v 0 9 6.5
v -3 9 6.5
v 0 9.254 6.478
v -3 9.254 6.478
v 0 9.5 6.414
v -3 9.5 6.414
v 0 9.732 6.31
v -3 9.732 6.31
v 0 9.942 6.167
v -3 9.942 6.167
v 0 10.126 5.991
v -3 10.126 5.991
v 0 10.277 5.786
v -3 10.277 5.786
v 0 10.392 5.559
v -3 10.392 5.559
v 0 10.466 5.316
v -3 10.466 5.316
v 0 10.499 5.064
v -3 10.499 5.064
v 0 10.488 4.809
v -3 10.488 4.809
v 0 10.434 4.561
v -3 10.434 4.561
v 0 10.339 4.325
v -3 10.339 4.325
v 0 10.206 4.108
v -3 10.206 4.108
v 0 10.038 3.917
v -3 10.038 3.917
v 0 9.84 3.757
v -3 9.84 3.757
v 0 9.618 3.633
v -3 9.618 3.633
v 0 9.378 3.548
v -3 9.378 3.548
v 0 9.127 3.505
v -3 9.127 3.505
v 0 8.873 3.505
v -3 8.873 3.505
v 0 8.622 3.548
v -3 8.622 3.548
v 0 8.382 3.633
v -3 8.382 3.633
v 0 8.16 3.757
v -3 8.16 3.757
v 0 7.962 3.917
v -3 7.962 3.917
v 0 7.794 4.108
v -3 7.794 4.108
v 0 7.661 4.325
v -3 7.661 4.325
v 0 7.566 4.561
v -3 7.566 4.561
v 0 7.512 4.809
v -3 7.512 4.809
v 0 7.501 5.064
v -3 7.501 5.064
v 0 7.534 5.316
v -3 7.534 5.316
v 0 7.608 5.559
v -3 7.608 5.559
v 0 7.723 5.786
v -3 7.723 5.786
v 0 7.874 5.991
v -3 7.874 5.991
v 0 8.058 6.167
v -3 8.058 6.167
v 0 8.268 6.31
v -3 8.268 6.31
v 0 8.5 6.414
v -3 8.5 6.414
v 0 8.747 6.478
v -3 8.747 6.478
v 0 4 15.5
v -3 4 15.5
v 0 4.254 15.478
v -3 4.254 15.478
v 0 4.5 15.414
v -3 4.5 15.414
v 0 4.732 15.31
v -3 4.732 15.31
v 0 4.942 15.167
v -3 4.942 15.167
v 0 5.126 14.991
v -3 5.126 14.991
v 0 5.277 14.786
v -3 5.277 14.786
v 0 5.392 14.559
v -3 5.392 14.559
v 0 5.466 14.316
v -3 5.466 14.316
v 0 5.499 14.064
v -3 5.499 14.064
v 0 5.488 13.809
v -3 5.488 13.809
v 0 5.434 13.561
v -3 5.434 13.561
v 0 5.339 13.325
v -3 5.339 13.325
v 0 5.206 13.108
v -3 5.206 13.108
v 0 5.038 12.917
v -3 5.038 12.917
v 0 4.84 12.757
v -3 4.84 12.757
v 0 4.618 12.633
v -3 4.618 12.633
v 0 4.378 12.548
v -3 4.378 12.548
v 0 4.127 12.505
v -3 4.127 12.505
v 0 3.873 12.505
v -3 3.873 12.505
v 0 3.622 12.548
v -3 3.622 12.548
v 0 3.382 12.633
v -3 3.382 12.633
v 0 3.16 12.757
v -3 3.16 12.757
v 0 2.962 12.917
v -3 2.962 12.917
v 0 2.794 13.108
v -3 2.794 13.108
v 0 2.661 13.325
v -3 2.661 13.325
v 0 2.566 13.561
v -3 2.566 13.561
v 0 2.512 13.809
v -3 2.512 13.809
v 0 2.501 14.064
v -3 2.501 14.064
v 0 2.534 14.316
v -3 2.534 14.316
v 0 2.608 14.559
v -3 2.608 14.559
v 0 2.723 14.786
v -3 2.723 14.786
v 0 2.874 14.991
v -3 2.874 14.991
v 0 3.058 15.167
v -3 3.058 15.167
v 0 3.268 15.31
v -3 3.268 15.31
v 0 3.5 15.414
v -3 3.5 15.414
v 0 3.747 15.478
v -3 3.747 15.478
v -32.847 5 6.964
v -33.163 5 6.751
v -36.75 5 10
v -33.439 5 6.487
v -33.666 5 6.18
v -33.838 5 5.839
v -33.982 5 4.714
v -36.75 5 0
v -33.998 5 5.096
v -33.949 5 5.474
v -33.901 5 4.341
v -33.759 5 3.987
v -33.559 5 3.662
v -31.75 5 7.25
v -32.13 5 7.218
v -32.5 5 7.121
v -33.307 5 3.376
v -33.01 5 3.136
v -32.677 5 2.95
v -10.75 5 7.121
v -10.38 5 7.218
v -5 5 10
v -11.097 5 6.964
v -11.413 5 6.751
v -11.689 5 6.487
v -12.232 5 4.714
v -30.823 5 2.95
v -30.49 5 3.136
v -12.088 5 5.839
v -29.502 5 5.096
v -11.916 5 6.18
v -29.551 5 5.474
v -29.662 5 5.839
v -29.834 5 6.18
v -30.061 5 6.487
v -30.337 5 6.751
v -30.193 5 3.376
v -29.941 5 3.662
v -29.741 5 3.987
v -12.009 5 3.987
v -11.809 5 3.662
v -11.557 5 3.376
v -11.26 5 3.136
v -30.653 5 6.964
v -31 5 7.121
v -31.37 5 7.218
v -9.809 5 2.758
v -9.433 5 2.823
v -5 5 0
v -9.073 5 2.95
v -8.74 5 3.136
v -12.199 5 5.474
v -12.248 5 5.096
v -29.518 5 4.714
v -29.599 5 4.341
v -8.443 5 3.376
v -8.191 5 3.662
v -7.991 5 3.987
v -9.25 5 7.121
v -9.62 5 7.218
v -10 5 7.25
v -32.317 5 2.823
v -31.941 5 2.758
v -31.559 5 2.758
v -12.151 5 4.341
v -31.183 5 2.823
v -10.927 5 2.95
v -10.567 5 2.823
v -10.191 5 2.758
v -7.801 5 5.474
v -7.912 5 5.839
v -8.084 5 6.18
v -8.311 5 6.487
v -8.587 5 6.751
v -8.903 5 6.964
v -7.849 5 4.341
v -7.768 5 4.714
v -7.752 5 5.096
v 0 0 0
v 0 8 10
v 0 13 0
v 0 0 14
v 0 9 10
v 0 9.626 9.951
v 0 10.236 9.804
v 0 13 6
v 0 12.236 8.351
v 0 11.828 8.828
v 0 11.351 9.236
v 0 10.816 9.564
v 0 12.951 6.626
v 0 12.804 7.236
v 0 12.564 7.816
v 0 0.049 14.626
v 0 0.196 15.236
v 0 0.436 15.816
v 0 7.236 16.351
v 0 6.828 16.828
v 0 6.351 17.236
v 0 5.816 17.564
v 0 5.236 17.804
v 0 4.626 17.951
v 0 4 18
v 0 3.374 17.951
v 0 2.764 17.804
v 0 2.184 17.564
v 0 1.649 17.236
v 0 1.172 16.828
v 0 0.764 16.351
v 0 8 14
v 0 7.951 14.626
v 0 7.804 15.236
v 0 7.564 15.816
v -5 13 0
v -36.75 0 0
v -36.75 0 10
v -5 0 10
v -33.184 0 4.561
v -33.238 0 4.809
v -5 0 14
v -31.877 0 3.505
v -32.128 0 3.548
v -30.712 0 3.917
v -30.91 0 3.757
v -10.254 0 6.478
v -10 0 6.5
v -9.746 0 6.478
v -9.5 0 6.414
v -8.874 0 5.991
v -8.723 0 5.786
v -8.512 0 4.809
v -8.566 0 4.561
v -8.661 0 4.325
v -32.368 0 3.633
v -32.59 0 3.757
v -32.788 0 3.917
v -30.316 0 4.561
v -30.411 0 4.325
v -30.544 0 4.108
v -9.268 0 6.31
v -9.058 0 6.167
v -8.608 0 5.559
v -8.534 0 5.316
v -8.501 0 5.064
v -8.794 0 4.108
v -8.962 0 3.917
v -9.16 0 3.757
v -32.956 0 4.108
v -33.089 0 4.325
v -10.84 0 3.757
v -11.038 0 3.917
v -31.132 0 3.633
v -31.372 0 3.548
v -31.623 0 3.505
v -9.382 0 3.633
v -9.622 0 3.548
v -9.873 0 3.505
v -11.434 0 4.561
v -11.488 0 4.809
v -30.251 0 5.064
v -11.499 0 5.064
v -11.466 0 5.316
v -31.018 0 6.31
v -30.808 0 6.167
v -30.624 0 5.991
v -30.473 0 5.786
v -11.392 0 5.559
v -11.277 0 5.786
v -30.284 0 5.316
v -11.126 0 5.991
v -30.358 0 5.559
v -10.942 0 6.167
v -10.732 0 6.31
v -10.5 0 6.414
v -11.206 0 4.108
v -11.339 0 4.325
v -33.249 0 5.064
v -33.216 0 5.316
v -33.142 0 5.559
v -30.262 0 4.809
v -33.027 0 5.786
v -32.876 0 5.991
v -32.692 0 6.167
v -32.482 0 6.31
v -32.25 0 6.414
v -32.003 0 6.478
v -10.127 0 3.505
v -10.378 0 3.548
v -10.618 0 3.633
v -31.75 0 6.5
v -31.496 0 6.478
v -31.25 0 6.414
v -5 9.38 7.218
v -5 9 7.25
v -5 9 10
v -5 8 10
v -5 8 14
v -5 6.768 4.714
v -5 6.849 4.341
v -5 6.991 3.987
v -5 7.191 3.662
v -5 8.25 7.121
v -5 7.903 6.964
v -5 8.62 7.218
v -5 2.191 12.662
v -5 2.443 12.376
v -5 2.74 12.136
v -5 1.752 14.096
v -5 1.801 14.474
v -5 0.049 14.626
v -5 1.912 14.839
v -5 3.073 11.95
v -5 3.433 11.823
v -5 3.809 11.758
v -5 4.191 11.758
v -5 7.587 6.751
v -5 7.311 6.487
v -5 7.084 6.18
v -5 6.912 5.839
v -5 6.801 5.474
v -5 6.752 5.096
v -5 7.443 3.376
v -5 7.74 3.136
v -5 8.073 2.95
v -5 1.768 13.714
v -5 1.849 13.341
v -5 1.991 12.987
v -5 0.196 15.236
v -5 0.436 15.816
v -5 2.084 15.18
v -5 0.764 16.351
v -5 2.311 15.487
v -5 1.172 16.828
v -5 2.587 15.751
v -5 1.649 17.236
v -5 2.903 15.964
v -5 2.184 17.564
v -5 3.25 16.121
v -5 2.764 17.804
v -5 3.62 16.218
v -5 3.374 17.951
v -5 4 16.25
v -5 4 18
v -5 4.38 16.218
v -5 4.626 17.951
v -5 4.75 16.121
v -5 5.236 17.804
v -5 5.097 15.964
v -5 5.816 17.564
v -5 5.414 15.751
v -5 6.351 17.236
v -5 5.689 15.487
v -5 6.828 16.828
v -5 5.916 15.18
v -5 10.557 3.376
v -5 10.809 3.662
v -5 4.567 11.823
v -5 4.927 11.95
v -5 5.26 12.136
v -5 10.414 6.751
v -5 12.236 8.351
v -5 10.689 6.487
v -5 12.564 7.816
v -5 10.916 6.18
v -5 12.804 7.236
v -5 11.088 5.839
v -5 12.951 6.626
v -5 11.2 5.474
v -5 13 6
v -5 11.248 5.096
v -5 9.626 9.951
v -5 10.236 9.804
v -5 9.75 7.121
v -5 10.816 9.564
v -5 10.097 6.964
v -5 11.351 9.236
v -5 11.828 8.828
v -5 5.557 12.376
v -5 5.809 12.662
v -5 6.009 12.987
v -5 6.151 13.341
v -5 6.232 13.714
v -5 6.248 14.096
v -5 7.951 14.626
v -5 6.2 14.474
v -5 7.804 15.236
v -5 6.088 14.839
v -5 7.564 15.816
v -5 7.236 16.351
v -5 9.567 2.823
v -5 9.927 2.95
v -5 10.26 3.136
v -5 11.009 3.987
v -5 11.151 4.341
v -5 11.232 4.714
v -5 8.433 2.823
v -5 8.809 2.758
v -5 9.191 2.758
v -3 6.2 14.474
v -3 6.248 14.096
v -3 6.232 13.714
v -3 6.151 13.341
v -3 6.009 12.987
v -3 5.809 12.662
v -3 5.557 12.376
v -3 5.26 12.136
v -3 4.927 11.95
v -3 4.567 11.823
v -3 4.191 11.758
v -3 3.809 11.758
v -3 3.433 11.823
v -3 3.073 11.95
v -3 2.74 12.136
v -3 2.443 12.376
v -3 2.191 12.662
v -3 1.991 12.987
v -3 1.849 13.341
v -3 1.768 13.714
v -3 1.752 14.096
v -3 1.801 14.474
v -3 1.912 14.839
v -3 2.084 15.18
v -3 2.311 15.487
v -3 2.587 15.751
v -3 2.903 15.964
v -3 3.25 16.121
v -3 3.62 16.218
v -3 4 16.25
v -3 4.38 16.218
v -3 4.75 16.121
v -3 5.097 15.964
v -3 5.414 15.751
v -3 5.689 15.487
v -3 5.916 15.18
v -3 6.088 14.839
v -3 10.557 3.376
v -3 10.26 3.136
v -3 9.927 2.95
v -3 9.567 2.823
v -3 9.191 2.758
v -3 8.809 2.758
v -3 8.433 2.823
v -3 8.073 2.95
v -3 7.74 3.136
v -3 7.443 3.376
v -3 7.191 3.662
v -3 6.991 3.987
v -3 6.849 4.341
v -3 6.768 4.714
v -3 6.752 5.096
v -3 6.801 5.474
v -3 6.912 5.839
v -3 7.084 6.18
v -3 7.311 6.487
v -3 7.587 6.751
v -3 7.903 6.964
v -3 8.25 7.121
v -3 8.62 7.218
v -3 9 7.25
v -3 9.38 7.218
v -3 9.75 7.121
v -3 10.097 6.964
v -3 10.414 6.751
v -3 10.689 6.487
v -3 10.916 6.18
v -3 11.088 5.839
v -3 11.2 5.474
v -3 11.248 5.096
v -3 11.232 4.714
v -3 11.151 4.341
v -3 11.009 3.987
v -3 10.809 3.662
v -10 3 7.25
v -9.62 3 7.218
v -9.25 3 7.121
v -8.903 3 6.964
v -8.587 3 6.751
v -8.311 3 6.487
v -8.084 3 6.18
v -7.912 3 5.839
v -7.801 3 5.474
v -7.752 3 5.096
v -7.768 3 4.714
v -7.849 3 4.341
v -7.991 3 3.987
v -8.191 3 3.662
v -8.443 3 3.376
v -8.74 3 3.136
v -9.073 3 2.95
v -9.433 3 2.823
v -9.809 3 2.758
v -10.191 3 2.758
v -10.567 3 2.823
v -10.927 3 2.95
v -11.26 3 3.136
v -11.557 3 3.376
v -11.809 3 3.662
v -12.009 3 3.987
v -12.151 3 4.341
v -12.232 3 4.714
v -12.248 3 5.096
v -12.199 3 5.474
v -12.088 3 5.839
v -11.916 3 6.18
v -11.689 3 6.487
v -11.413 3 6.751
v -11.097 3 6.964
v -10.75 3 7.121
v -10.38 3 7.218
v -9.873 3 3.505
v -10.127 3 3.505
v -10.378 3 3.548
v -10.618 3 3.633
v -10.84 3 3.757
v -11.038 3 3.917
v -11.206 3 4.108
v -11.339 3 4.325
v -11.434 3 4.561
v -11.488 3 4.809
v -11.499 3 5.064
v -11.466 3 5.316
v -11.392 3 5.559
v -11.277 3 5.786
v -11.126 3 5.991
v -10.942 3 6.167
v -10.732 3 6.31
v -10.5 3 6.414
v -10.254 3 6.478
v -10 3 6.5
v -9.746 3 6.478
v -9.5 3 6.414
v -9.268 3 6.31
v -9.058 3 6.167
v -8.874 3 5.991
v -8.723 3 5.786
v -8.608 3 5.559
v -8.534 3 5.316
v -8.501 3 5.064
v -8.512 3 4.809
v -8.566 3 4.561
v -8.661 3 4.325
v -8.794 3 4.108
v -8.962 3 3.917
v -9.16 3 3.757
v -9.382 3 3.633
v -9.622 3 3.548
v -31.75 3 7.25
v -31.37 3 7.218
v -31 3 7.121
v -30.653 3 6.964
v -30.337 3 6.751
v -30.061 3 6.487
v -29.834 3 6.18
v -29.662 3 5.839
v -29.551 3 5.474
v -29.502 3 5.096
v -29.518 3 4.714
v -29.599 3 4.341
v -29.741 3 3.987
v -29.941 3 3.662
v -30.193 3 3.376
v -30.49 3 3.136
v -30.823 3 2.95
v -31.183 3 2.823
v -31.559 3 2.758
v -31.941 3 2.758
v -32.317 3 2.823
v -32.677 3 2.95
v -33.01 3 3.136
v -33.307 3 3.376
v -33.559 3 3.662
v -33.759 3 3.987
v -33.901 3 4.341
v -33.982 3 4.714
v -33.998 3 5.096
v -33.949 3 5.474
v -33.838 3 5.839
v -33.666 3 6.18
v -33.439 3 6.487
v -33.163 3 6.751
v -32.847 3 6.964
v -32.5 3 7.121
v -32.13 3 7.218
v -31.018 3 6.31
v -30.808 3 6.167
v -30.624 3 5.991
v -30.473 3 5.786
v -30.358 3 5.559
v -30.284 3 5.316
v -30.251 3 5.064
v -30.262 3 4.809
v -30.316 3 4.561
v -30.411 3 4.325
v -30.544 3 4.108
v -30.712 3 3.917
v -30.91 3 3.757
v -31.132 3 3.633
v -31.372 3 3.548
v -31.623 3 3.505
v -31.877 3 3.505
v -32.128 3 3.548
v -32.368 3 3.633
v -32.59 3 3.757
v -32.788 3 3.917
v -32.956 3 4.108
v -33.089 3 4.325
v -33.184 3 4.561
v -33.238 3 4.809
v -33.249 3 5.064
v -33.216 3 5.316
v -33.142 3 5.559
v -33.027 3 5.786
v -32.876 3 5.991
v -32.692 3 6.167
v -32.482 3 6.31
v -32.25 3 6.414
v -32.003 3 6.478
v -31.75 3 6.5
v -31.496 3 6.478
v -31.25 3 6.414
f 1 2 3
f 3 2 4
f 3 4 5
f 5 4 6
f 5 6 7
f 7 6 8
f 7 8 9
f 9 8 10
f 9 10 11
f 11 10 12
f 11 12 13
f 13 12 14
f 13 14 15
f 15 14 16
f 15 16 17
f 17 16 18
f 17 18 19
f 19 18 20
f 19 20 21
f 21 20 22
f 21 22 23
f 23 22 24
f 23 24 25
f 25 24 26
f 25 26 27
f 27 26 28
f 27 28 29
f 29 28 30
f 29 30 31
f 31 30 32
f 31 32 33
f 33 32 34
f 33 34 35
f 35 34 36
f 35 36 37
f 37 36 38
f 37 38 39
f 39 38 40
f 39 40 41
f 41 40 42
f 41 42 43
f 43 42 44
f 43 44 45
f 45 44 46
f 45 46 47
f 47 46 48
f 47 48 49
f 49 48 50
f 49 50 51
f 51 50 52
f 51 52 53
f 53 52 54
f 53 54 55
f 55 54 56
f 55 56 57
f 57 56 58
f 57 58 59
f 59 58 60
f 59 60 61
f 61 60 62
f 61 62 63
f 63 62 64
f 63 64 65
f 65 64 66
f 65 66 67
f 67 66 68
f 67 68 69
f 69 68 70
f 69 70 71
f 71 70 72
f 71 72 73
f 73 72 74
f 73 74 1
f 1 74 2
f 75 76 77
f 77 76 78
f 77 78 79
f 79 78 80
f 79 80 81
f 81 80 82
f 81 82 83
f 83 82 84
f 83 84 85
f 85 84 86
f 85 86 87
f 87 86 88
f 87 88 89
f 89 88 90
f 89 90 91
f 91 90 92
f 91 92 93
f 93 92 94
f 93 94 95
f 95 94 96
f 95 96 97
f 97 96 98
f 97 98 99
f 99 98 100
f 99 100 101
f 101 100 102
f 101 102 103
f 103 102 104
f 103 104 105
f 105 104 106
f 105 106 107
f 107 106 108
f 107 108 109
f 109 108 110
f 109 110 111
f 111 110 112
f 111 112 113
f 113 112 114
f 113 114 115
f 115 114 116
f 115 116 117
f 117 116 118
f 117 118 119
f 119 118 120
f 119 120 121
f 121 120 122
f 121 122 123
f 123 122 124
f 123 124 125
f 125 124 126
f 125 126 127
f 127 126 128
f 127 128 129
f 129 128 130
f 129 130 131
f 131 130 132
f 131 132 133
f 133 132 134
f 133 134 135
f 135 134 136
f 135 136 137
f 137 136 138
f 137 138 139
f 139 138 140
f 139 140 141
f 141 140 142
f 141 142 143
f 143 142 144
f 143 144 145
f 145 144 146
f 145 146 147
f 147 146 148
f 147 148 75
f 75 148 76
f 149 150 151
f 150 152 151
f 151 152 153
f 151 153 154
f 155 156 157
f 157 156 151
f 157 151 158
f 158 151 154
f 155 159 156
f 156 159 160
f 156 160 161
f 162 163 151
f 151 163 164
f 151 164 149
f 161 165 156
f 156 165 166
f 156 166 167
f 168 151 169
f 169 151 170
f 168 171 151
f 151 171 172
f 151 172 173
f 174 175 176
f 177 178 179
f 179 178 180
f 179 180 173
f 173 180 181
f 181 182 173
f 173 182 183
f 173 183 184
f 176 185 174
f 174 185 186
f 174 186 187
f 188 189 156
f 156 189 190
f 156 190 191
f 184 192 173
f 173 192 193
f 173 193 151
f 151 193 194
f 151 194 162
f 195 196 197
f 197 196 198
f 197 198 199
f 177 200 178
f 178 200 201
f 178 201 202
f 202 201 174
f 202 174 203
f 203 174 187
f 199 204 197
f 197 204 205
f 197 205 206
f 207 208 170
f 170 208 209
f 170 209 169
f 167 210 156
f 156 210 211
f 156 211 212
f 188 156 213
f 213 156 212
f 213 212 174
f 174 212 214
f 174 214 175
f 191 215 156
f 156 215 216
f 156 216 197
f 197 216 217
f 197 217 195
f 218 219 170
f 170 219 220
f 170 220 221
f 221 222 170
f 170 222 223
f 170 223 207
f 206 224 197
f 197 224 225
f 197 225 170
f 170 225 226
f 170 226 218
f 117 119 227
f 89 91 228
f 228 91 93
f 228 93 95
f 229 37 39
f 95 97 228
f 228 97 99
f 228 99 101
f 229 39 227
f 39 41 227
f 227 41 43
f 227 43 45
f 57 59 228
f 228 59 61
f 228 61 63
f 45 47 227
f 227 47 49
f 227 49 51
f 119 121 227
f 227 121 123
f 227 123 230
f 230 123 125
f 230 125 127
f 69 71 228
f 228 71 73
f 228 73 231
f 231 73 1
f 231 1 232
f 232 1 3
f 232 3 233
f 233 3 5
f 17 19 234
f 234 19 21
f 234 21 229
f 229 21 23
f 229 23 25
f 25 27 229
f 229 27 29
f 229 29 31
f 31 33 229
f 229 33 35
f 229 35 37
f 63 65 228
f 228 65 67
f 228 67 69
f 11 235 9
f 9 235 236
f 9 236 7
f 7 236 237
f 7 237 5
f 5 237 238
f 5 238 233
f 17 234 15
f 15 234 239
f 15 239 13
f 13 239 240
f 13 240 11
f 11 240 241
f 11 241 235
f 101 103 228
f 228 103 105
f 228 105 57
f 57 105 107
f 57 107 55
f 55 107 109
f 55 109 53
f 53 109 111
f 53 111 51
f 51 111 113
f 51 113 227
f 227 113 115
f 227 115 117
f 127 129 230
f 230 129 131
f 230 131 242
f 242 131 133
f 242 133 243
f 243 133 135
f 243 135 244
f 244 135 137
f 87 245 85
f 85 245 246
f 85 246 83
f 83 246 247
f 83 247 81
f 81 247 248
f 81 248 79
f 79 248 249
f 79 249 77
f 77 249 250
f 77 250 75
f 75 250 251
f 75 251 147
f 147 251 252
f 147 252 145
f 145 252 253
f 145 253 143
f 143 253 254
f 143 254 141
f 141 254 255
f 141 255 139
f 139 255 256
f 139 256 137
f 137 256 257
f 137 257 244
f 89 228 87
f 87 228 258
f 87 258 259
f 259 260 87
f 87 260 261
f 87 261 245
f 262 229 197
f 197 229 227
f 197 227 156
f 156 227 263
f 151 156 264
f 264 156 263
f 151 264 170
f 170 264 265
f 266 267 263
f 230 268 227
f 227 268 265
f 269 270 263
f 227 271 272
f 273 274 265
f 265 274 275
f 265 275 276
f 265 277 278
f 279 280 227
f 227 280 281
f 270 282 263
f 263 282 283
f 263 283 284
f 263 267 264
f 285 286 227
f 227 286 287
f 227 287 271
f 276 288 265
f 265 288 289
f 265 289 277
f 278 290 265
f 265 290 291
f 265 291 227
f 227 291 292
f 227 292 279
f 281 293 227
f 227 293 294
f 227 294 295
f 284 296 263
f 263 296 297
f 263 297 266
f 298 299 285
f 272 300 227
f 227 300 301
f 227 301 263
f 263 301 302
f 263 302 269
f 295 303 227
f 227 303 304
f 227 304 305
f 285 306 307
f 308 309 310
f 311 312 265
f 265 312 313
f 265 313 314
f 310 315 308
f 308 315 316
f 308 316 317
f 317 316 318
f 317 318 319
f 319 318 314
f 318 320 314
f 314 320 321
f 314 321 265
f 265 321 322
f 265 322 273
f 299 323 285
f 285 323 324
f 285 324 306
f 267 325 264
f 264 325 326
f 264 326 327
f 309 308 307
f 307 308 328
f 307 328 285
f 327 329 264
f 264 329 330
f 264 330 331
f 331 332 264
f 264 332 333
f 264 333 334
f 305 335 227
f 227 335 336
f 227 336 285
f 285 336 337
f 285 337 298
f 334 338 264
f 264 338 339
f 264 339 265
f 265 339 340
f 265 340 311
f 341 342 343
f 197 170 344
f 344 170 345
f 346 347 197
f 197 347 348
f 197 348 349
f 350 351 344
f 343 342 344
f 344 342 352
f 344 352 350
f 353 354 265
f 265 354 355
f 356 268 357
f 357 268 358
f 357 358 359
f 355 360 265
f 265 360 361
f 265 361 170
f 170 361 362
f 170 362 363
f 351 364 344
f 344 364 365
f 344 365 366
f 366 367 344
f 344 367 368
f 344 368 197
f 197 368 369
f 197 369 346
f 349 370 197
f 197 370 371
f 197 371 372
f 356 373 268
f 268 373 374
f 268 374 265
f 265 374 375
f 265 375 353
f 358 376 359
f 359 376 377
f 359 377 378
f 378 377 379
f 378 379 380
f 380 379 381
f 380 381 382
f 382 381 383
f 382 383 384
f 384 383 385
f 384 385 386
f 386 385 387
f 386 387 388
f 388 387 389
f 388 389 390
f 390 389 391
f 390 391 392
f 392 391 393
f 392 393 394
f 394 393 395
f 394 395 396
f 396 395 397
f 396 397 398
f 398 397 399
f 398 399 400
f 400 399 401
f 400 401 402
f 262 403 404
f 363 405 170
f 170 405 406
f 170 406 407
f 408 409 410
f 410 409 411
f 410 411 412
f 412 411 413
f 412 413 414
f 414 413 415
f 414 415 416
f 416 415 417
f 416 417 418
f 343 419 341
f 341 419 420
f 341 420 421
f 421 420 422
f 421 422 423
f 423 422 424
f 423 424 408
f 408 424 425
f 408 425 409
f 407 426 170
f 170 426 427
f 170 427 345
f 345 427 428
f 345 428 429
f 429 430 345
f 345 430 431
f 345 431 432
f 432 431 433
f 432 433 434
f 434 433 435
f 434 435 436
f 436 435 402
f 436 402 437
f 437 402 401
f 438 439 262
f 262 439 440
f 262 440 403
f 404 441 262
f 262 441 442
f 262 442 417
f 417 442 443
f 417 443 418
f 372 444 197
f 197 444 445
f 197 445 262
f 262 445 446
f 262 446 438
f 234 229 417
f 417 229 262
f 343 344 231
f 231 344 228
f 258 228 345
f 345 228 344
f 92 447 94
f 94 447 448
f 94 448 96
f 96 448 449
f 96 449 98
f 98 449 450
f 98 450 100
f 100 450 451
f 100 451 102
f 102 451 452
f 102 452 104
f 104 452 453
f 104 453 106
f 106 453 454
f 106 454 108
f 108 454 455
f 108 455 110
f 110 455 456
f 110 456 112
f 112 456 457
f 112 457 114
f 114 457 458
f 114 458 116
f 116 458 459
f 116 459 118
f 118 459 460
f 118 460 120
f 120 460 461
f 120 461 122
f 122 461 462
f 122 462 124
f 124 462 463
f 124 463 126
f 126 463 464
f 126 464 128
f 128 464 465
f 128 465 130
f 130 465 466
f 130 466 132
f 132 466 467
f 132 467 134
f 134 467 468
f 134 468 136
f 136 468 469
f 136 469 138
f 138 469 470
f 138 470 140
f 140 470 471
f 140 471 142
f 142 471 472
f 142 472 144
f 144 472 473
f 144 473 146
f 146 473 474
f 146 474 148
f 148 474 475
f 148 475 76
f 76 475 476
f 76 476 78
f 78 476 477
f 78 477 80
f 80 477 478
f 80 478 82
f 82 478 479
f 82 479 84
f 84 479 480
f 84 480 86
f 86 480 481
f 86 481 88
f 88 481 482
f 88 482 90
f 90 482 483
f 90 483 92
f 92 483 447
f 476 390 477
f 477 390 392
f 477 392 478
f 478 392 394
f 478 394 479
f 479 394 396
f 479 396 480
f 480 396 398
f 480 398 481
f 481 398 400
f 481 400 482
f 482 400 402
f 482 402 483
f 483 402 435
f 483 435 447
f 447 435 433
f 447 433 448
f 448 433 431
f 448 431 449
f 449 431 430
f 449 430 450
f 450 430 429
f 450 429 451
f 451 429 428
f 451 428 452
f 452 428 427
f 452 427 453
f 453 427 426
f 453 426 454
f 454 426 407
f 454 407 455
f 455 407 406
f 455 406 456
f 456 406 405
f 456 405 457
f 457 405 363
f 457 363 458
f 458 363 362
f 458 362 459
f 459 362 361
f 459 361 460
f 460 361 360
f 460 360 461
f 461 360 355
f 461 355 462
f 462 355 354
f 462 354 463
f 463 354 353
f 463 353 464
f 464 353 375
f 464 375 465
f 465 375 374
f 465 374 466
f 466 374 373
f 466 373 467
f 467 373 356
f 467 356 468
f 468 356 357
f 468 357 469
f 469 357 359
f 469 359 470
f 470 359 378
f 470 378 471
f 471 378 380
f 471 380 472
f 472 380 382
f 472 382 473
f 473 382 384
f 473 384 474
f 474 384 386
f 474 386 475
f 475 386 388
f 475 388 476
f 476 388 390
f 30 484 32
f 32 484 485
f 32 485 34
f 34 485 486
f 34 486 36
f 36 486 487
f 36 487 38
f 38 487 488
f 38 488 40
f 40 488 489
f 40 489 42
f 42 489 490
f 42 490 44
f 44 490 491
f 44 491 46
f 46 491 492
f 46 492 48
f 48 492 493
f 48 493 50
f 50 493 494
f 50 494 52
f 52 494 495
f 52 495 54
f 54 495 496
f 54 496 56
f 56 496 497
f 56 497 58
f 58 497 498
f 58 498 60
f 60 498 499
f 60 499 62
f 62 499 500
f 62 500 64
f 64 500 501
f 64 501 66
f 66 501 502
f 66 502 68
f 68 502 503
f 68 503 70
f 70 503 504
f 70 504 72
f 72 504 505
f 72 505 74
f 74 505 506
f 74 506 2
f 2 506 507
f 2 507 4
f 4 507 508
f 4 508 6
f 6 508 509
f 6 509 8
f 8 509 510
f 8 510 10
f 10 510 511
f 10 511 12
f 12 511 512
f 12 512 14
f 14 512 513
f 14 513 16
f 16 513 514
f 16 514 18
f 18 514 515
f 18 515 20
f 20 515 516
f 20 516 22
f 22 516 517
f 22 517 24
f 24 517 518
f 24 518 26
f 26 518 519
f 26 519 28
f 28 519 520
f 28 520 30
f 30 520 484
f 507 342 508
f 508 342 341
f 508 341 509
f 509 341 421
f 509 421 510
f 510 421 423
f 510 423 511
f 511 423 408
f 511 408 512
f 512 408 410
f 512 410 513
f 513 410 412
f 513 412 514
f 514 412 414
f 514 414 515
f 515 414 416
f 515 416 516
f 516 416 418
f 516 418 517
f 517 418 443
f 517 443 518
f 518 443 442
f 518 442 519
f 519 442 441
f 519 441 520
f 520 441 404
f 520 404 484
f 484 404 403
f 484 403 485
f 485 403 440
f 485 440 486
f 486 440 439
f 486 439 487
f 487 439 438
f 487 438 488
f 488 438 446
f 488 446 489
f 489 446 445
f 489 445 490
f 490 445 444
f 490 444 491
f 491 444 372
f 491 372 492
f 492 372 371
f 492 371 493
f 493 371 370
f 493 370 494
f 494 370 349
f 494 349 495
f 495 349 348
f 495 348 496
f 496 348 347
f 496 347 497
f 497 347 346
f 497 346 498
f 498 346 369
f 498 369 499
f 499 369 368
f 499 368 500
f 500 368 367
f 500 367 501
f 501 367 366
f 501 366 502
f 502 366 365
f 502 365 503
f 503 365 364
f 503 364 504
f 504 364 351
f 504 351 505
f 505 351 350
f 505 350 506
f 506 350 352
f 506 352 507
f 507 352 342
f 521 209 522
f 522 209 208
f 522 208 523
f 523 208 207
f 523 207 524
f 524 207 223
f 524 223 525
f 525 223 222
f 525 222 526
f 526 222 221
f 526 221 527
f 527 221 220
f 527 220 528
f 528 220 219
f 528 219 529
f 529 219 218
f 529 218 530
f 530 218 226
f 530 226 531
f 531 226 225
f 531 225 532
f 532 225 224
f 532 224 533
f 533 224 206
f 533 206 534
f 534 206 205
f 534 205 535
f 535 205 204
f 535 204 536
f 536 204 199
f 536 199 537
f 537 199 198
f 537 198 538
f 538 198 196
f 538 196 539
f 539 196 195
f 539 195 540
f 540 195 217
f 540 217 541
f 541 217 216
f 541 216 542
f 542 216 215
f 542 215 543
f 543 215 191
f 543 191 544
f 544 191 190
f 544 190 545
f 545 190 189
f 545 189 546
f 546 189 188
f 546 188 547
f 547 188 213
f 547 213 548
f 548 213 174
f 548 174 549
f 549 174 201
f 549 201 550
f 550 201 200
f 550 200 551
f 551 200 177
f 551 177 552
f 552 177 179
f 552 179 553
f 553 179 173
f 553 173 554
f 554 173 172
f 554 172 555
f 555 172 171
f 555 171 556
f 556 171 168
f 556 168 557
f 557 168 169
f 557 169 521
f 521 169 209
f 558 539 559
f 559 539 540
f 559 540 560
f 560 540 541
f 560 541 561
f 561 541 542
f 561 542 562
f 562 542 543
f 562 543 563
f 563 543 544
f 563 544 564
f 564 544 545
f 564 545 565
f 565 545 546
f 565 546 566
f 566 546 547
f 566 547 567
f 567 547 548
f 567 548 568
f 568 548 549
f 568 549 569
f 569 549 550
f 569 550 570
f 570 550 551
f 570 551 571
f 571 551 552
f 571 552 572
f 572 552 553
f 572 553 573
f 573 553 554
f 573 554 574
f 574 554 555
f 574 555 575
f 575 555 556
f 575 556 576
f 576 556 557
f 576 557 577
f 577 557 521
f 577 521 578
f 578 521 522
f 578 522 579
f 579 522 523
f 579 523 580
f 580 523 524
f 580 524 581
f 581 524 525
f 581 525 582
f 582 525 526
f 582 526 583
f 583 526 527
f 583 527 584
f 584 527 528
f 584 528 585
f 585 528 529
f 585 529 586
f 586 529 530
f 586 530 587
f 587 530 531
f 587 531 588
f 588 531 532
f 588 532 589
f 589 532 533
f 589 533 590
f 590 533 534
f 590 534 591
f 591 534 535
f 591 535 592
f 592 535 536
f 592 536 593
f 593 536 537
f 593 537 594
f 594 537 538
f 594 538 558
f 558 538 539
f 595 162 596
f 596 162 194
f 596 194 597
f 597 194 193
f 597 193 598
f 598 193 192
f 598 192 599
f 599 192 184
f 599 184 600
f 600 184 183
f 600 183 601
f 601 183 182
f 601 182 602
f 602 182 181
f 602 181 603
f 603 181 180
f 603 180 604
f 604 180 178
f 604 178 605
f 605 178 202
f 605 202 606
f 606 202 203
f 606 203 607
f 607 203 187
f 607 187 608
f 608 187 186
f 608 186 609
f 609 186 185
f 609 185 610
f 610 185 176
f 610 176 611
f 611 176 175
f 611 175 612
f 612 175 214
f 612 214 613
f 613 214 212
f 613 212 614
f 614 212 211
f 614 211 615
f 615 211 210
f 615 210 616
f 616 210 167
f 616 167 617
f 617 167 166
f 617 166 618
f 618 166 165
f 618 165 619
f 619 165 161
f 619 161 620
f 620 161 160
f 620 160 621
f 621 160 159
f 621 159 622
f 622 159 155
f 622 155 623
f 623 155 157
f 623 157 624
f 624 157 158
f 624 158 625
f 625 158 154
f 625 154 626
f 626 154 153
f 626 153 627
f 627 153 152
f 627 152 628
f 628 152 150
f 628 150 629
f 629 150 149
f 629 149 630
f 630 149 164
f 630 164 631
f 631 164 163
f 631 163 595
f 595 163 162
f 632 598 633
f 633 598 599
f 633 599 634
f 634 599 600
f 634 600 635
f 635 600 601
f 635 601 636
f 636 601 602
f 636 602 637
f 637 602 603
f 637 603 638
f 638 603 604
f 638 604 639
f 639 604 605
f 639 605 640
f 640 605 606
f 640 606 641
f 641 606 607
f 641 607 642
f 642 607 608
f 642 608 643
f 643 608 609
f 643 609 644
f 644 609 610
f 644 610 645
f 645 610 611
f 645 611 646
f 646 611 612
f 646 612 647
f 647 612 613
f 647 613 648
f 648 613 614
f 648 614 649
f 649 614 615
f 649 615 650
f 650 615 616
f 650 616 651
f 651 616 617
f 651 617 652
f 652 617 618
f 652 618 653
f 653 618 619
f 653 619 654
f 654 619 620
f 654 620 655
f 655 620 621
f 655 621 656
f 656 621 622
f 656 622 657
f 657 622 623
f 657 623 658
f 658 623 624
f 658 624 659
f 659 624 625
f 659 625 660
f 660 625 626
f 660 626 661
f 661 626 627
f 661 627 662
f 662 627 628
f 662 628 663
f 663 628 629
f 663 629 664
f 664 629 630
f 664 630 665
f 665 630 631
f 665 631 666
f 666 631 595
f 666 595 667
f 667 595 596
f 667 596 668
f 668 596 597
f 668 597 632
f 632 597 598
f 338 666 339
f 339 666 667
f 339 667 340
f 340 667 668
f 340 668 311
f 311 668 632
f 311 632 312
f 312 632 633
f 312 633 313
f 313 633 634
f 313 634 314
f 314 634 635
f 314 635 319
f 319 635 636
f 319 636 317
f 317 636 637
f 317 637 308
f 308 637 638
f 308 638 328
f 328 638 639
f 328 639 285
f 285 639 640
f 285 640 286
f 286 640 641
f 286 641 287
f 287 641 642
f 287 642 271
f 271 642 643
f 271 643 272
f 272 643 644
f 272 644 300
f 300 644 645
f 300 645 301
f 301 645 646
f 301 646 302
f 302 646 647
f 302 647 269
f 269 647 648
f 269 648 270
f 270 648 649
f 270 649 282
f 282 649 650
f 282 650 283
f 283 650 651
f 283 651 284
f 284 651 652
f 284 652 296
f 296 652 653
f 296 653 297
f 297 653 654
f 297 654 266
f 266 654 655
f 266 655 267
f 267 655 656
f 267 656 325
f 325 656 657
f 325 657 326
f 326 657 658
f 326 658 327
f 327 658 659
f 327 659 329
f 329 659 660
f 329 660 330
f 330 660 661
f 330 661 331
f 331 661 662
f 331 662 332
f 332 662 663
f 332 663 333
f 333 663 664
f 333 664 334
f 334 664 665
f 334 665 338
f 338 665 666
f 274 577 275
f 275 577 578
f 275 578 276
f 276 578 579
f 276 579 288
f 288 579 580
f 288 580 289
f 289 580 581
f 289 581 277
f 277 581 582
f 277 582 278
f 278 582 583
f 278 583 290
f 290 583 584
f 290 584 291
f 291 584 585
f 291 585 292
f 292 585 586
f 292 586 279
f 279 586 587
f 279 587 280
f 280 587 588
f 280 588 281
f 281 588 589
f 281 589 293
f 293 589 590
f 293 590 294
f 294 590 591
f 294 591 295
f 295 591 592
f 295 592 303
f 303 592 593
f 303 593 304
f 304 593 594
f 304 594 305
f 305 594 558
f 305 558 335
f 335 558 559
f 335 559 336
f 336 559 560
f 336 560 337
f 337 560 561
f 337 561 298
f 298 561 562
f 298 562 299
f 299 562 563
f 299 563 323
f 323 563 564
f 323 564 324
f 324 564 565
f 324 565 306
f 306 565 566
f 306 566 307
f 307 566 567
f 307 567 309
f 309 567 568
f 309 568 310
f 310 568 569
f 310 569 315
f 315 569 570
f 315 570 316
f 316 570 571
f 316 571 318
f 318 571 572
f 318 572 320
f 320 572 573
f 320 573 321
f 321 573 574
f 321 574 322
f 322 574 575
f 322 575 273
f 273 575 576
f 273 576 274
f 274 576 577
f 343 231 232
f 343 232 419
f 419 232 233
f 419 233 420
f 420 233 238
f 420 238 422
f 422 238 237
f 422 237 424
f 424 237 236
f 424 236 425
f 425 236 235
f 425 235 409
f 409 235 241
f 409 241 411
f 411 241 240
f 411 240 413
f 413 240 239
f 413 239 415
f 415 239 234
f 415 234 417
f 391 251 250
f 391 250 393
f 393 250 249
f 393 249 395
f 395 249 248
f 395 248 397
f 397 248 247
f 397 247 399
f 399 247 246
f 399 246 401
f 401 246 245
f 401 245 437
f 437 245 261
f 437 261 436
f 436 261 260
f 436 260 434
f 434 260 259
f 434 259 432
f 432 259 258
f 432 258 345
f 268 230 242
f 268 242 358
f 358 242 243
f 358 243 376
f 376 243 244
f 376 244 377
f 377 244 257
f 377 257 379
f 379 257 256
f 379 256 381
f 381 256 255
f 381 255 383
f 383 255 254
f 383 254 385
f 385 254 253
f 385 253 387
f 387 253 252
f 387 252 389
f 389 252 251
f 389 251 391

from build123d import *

# Parameters (mm, degrees)
SKETCH_4_W          = 36.75
SKETCH_4_H          = 10
EXTRUDE_1_DEPTH     = 5
EXTRUDE_START       = 5
SKETCH_4_3_W        = 5
SKETCH_4_3_H        = 10
EXTRUDE_2_DEPTH     = 8
SKETCH_5_W          = 5
SKETCH_5_H          = 13
EXTRUDE_3_DEPTH     = 8
SKETCH_6_R          = 1.5
SKETCH_6_W          = 8
SKETCH_6_H          = 5
CUT_EXTRUDE_1_DEPTH = 39.74354785
SKETCH_6_3_R        = 2.25
CUT_EXTRUDE_2_DEPTH = 2
SKETCH_7_R          = 2.25
CUT_EXTRUDE_3_DEPTH = 2
SKETCH_7_3_R        = 1.5
CUT_EXTRUDE_4_DEPTH = 42.696072957
FILLET_1_R          = 4


with BuildPart() as part:
    # 草图4 → 凸台-拉伸1 (new body)
    with BuildSketch(Plane(origin=(0, 0, 0), x_dir=(1, 0, 0), z_dir=(0, 1, 0))):
        with Locations((-18.375, -5)):
            Rectangle(SKETCH_4_W, SKETCH_4_H)
    extrude(amount=EXTRUDE_1_DEPTH)

    # 草图4<3> → 凸台-拉伸2 (add)
    with BuildSketch(Plane(origin=(0, 0, 0), x_dir=(1, 0, 0), z_dir=(0, 1, 0)).offset(EXTRUDE_START)):
        with Locations((-2.5, -5)):
            Rectangle(SKETCH_4_3_W, SKETCH_4_3_H)
    extrude(amount=EXTRUDE_2_DEPTH)

    # 草图5 → 凸台-拉伸3 (add)
    with BuildSketch(Plane.XY.offset(10)):
        with Locations((-2.5, 6.5)):
            Rectangle(SKETCH_5_W, SKETCH_5_H)
    extrude(amount=EXTRUDE_3_DEPTH)

    # 草图6 → 切除-拉伸1 (cut, through all)
    with BuildSketch(Plane.ZY.offset(5)):
        with Locations((5, 9)):
            Circle(SKETCH_6_R)
        with Locations((14, 4)):
            Circle(SKETCH_6_R)
        with Locations((14, 10.5)):
            Rectangle(SKETCH_6_W, SKETCH_6_H)
    extrude(amount=-CUT_EXTRUDE_1_DEPTH, mode=Mode.SUBTRACT)

    # 草图6<3> → 切除-拉伸2 (cut)
    with BuildSketch(Plane.ZY.offset(5)):
        with Locations((5, 9)):
            Circle(SKETCH_6_3_R)
        with Locations((14, 4)):
            Circle(SKETCH_6_3_R)
    extrude(amount=-CUT_EXTRUDE_2_DEPTH, mode=Mode.SUBTRACT)

    # 草图7 → 切除-拉伸3 (cut)
    with BuildSketch(Plane(origin=(0, 5, 0), x_dir=(1, 0, 0), z_dir=(0, 1, 0))):
        with Locations(Location((-31.75, -5, 0), (0, 0, 270))):
            Circle(SKETCH_7_R)
        with Locations(Location((-10, -5, 0), (0, 0, 270))):
            Circle(SKETCH_7_R)
    extrude(amount=-CUT_EXTRUDE_3_DEPTH, mode=Mode.SUBTRACT)

    # 草图7<3> → 切除-拉伸4 (cut, through all)
    with BuildSketch(Plane(origin=(0, 5, 0), x_dir=(1, 0, 0), z_dir=(0, 1, 0))):
        with Locations(Location((-31.75, -5, 0), (0, 0, 270))):
            Circle(SKETCH_7_3_R)
        with Locations(Location((-10, -5, 0), (0, 0, 270))):
            Circle(SKETCH_7_3_R)
    extrude(amount=-CUT_EXTRUDE_4_DEPTH, mode=Mode.SUBTRACT)

    # 圆角1
    fillet_1_edges = [part.edges().sort_by_distance(p)[0] for p in [
        (-2.5, 13, 10),
        (-2.5, 0, 18),
        (-2.5, 8, 18),
    ]]
    fillet(fillet_1_edges, radius=FILLET_1_R - 0.0001)  # a hair under: the kernel refuses the full size


solid = part.part
